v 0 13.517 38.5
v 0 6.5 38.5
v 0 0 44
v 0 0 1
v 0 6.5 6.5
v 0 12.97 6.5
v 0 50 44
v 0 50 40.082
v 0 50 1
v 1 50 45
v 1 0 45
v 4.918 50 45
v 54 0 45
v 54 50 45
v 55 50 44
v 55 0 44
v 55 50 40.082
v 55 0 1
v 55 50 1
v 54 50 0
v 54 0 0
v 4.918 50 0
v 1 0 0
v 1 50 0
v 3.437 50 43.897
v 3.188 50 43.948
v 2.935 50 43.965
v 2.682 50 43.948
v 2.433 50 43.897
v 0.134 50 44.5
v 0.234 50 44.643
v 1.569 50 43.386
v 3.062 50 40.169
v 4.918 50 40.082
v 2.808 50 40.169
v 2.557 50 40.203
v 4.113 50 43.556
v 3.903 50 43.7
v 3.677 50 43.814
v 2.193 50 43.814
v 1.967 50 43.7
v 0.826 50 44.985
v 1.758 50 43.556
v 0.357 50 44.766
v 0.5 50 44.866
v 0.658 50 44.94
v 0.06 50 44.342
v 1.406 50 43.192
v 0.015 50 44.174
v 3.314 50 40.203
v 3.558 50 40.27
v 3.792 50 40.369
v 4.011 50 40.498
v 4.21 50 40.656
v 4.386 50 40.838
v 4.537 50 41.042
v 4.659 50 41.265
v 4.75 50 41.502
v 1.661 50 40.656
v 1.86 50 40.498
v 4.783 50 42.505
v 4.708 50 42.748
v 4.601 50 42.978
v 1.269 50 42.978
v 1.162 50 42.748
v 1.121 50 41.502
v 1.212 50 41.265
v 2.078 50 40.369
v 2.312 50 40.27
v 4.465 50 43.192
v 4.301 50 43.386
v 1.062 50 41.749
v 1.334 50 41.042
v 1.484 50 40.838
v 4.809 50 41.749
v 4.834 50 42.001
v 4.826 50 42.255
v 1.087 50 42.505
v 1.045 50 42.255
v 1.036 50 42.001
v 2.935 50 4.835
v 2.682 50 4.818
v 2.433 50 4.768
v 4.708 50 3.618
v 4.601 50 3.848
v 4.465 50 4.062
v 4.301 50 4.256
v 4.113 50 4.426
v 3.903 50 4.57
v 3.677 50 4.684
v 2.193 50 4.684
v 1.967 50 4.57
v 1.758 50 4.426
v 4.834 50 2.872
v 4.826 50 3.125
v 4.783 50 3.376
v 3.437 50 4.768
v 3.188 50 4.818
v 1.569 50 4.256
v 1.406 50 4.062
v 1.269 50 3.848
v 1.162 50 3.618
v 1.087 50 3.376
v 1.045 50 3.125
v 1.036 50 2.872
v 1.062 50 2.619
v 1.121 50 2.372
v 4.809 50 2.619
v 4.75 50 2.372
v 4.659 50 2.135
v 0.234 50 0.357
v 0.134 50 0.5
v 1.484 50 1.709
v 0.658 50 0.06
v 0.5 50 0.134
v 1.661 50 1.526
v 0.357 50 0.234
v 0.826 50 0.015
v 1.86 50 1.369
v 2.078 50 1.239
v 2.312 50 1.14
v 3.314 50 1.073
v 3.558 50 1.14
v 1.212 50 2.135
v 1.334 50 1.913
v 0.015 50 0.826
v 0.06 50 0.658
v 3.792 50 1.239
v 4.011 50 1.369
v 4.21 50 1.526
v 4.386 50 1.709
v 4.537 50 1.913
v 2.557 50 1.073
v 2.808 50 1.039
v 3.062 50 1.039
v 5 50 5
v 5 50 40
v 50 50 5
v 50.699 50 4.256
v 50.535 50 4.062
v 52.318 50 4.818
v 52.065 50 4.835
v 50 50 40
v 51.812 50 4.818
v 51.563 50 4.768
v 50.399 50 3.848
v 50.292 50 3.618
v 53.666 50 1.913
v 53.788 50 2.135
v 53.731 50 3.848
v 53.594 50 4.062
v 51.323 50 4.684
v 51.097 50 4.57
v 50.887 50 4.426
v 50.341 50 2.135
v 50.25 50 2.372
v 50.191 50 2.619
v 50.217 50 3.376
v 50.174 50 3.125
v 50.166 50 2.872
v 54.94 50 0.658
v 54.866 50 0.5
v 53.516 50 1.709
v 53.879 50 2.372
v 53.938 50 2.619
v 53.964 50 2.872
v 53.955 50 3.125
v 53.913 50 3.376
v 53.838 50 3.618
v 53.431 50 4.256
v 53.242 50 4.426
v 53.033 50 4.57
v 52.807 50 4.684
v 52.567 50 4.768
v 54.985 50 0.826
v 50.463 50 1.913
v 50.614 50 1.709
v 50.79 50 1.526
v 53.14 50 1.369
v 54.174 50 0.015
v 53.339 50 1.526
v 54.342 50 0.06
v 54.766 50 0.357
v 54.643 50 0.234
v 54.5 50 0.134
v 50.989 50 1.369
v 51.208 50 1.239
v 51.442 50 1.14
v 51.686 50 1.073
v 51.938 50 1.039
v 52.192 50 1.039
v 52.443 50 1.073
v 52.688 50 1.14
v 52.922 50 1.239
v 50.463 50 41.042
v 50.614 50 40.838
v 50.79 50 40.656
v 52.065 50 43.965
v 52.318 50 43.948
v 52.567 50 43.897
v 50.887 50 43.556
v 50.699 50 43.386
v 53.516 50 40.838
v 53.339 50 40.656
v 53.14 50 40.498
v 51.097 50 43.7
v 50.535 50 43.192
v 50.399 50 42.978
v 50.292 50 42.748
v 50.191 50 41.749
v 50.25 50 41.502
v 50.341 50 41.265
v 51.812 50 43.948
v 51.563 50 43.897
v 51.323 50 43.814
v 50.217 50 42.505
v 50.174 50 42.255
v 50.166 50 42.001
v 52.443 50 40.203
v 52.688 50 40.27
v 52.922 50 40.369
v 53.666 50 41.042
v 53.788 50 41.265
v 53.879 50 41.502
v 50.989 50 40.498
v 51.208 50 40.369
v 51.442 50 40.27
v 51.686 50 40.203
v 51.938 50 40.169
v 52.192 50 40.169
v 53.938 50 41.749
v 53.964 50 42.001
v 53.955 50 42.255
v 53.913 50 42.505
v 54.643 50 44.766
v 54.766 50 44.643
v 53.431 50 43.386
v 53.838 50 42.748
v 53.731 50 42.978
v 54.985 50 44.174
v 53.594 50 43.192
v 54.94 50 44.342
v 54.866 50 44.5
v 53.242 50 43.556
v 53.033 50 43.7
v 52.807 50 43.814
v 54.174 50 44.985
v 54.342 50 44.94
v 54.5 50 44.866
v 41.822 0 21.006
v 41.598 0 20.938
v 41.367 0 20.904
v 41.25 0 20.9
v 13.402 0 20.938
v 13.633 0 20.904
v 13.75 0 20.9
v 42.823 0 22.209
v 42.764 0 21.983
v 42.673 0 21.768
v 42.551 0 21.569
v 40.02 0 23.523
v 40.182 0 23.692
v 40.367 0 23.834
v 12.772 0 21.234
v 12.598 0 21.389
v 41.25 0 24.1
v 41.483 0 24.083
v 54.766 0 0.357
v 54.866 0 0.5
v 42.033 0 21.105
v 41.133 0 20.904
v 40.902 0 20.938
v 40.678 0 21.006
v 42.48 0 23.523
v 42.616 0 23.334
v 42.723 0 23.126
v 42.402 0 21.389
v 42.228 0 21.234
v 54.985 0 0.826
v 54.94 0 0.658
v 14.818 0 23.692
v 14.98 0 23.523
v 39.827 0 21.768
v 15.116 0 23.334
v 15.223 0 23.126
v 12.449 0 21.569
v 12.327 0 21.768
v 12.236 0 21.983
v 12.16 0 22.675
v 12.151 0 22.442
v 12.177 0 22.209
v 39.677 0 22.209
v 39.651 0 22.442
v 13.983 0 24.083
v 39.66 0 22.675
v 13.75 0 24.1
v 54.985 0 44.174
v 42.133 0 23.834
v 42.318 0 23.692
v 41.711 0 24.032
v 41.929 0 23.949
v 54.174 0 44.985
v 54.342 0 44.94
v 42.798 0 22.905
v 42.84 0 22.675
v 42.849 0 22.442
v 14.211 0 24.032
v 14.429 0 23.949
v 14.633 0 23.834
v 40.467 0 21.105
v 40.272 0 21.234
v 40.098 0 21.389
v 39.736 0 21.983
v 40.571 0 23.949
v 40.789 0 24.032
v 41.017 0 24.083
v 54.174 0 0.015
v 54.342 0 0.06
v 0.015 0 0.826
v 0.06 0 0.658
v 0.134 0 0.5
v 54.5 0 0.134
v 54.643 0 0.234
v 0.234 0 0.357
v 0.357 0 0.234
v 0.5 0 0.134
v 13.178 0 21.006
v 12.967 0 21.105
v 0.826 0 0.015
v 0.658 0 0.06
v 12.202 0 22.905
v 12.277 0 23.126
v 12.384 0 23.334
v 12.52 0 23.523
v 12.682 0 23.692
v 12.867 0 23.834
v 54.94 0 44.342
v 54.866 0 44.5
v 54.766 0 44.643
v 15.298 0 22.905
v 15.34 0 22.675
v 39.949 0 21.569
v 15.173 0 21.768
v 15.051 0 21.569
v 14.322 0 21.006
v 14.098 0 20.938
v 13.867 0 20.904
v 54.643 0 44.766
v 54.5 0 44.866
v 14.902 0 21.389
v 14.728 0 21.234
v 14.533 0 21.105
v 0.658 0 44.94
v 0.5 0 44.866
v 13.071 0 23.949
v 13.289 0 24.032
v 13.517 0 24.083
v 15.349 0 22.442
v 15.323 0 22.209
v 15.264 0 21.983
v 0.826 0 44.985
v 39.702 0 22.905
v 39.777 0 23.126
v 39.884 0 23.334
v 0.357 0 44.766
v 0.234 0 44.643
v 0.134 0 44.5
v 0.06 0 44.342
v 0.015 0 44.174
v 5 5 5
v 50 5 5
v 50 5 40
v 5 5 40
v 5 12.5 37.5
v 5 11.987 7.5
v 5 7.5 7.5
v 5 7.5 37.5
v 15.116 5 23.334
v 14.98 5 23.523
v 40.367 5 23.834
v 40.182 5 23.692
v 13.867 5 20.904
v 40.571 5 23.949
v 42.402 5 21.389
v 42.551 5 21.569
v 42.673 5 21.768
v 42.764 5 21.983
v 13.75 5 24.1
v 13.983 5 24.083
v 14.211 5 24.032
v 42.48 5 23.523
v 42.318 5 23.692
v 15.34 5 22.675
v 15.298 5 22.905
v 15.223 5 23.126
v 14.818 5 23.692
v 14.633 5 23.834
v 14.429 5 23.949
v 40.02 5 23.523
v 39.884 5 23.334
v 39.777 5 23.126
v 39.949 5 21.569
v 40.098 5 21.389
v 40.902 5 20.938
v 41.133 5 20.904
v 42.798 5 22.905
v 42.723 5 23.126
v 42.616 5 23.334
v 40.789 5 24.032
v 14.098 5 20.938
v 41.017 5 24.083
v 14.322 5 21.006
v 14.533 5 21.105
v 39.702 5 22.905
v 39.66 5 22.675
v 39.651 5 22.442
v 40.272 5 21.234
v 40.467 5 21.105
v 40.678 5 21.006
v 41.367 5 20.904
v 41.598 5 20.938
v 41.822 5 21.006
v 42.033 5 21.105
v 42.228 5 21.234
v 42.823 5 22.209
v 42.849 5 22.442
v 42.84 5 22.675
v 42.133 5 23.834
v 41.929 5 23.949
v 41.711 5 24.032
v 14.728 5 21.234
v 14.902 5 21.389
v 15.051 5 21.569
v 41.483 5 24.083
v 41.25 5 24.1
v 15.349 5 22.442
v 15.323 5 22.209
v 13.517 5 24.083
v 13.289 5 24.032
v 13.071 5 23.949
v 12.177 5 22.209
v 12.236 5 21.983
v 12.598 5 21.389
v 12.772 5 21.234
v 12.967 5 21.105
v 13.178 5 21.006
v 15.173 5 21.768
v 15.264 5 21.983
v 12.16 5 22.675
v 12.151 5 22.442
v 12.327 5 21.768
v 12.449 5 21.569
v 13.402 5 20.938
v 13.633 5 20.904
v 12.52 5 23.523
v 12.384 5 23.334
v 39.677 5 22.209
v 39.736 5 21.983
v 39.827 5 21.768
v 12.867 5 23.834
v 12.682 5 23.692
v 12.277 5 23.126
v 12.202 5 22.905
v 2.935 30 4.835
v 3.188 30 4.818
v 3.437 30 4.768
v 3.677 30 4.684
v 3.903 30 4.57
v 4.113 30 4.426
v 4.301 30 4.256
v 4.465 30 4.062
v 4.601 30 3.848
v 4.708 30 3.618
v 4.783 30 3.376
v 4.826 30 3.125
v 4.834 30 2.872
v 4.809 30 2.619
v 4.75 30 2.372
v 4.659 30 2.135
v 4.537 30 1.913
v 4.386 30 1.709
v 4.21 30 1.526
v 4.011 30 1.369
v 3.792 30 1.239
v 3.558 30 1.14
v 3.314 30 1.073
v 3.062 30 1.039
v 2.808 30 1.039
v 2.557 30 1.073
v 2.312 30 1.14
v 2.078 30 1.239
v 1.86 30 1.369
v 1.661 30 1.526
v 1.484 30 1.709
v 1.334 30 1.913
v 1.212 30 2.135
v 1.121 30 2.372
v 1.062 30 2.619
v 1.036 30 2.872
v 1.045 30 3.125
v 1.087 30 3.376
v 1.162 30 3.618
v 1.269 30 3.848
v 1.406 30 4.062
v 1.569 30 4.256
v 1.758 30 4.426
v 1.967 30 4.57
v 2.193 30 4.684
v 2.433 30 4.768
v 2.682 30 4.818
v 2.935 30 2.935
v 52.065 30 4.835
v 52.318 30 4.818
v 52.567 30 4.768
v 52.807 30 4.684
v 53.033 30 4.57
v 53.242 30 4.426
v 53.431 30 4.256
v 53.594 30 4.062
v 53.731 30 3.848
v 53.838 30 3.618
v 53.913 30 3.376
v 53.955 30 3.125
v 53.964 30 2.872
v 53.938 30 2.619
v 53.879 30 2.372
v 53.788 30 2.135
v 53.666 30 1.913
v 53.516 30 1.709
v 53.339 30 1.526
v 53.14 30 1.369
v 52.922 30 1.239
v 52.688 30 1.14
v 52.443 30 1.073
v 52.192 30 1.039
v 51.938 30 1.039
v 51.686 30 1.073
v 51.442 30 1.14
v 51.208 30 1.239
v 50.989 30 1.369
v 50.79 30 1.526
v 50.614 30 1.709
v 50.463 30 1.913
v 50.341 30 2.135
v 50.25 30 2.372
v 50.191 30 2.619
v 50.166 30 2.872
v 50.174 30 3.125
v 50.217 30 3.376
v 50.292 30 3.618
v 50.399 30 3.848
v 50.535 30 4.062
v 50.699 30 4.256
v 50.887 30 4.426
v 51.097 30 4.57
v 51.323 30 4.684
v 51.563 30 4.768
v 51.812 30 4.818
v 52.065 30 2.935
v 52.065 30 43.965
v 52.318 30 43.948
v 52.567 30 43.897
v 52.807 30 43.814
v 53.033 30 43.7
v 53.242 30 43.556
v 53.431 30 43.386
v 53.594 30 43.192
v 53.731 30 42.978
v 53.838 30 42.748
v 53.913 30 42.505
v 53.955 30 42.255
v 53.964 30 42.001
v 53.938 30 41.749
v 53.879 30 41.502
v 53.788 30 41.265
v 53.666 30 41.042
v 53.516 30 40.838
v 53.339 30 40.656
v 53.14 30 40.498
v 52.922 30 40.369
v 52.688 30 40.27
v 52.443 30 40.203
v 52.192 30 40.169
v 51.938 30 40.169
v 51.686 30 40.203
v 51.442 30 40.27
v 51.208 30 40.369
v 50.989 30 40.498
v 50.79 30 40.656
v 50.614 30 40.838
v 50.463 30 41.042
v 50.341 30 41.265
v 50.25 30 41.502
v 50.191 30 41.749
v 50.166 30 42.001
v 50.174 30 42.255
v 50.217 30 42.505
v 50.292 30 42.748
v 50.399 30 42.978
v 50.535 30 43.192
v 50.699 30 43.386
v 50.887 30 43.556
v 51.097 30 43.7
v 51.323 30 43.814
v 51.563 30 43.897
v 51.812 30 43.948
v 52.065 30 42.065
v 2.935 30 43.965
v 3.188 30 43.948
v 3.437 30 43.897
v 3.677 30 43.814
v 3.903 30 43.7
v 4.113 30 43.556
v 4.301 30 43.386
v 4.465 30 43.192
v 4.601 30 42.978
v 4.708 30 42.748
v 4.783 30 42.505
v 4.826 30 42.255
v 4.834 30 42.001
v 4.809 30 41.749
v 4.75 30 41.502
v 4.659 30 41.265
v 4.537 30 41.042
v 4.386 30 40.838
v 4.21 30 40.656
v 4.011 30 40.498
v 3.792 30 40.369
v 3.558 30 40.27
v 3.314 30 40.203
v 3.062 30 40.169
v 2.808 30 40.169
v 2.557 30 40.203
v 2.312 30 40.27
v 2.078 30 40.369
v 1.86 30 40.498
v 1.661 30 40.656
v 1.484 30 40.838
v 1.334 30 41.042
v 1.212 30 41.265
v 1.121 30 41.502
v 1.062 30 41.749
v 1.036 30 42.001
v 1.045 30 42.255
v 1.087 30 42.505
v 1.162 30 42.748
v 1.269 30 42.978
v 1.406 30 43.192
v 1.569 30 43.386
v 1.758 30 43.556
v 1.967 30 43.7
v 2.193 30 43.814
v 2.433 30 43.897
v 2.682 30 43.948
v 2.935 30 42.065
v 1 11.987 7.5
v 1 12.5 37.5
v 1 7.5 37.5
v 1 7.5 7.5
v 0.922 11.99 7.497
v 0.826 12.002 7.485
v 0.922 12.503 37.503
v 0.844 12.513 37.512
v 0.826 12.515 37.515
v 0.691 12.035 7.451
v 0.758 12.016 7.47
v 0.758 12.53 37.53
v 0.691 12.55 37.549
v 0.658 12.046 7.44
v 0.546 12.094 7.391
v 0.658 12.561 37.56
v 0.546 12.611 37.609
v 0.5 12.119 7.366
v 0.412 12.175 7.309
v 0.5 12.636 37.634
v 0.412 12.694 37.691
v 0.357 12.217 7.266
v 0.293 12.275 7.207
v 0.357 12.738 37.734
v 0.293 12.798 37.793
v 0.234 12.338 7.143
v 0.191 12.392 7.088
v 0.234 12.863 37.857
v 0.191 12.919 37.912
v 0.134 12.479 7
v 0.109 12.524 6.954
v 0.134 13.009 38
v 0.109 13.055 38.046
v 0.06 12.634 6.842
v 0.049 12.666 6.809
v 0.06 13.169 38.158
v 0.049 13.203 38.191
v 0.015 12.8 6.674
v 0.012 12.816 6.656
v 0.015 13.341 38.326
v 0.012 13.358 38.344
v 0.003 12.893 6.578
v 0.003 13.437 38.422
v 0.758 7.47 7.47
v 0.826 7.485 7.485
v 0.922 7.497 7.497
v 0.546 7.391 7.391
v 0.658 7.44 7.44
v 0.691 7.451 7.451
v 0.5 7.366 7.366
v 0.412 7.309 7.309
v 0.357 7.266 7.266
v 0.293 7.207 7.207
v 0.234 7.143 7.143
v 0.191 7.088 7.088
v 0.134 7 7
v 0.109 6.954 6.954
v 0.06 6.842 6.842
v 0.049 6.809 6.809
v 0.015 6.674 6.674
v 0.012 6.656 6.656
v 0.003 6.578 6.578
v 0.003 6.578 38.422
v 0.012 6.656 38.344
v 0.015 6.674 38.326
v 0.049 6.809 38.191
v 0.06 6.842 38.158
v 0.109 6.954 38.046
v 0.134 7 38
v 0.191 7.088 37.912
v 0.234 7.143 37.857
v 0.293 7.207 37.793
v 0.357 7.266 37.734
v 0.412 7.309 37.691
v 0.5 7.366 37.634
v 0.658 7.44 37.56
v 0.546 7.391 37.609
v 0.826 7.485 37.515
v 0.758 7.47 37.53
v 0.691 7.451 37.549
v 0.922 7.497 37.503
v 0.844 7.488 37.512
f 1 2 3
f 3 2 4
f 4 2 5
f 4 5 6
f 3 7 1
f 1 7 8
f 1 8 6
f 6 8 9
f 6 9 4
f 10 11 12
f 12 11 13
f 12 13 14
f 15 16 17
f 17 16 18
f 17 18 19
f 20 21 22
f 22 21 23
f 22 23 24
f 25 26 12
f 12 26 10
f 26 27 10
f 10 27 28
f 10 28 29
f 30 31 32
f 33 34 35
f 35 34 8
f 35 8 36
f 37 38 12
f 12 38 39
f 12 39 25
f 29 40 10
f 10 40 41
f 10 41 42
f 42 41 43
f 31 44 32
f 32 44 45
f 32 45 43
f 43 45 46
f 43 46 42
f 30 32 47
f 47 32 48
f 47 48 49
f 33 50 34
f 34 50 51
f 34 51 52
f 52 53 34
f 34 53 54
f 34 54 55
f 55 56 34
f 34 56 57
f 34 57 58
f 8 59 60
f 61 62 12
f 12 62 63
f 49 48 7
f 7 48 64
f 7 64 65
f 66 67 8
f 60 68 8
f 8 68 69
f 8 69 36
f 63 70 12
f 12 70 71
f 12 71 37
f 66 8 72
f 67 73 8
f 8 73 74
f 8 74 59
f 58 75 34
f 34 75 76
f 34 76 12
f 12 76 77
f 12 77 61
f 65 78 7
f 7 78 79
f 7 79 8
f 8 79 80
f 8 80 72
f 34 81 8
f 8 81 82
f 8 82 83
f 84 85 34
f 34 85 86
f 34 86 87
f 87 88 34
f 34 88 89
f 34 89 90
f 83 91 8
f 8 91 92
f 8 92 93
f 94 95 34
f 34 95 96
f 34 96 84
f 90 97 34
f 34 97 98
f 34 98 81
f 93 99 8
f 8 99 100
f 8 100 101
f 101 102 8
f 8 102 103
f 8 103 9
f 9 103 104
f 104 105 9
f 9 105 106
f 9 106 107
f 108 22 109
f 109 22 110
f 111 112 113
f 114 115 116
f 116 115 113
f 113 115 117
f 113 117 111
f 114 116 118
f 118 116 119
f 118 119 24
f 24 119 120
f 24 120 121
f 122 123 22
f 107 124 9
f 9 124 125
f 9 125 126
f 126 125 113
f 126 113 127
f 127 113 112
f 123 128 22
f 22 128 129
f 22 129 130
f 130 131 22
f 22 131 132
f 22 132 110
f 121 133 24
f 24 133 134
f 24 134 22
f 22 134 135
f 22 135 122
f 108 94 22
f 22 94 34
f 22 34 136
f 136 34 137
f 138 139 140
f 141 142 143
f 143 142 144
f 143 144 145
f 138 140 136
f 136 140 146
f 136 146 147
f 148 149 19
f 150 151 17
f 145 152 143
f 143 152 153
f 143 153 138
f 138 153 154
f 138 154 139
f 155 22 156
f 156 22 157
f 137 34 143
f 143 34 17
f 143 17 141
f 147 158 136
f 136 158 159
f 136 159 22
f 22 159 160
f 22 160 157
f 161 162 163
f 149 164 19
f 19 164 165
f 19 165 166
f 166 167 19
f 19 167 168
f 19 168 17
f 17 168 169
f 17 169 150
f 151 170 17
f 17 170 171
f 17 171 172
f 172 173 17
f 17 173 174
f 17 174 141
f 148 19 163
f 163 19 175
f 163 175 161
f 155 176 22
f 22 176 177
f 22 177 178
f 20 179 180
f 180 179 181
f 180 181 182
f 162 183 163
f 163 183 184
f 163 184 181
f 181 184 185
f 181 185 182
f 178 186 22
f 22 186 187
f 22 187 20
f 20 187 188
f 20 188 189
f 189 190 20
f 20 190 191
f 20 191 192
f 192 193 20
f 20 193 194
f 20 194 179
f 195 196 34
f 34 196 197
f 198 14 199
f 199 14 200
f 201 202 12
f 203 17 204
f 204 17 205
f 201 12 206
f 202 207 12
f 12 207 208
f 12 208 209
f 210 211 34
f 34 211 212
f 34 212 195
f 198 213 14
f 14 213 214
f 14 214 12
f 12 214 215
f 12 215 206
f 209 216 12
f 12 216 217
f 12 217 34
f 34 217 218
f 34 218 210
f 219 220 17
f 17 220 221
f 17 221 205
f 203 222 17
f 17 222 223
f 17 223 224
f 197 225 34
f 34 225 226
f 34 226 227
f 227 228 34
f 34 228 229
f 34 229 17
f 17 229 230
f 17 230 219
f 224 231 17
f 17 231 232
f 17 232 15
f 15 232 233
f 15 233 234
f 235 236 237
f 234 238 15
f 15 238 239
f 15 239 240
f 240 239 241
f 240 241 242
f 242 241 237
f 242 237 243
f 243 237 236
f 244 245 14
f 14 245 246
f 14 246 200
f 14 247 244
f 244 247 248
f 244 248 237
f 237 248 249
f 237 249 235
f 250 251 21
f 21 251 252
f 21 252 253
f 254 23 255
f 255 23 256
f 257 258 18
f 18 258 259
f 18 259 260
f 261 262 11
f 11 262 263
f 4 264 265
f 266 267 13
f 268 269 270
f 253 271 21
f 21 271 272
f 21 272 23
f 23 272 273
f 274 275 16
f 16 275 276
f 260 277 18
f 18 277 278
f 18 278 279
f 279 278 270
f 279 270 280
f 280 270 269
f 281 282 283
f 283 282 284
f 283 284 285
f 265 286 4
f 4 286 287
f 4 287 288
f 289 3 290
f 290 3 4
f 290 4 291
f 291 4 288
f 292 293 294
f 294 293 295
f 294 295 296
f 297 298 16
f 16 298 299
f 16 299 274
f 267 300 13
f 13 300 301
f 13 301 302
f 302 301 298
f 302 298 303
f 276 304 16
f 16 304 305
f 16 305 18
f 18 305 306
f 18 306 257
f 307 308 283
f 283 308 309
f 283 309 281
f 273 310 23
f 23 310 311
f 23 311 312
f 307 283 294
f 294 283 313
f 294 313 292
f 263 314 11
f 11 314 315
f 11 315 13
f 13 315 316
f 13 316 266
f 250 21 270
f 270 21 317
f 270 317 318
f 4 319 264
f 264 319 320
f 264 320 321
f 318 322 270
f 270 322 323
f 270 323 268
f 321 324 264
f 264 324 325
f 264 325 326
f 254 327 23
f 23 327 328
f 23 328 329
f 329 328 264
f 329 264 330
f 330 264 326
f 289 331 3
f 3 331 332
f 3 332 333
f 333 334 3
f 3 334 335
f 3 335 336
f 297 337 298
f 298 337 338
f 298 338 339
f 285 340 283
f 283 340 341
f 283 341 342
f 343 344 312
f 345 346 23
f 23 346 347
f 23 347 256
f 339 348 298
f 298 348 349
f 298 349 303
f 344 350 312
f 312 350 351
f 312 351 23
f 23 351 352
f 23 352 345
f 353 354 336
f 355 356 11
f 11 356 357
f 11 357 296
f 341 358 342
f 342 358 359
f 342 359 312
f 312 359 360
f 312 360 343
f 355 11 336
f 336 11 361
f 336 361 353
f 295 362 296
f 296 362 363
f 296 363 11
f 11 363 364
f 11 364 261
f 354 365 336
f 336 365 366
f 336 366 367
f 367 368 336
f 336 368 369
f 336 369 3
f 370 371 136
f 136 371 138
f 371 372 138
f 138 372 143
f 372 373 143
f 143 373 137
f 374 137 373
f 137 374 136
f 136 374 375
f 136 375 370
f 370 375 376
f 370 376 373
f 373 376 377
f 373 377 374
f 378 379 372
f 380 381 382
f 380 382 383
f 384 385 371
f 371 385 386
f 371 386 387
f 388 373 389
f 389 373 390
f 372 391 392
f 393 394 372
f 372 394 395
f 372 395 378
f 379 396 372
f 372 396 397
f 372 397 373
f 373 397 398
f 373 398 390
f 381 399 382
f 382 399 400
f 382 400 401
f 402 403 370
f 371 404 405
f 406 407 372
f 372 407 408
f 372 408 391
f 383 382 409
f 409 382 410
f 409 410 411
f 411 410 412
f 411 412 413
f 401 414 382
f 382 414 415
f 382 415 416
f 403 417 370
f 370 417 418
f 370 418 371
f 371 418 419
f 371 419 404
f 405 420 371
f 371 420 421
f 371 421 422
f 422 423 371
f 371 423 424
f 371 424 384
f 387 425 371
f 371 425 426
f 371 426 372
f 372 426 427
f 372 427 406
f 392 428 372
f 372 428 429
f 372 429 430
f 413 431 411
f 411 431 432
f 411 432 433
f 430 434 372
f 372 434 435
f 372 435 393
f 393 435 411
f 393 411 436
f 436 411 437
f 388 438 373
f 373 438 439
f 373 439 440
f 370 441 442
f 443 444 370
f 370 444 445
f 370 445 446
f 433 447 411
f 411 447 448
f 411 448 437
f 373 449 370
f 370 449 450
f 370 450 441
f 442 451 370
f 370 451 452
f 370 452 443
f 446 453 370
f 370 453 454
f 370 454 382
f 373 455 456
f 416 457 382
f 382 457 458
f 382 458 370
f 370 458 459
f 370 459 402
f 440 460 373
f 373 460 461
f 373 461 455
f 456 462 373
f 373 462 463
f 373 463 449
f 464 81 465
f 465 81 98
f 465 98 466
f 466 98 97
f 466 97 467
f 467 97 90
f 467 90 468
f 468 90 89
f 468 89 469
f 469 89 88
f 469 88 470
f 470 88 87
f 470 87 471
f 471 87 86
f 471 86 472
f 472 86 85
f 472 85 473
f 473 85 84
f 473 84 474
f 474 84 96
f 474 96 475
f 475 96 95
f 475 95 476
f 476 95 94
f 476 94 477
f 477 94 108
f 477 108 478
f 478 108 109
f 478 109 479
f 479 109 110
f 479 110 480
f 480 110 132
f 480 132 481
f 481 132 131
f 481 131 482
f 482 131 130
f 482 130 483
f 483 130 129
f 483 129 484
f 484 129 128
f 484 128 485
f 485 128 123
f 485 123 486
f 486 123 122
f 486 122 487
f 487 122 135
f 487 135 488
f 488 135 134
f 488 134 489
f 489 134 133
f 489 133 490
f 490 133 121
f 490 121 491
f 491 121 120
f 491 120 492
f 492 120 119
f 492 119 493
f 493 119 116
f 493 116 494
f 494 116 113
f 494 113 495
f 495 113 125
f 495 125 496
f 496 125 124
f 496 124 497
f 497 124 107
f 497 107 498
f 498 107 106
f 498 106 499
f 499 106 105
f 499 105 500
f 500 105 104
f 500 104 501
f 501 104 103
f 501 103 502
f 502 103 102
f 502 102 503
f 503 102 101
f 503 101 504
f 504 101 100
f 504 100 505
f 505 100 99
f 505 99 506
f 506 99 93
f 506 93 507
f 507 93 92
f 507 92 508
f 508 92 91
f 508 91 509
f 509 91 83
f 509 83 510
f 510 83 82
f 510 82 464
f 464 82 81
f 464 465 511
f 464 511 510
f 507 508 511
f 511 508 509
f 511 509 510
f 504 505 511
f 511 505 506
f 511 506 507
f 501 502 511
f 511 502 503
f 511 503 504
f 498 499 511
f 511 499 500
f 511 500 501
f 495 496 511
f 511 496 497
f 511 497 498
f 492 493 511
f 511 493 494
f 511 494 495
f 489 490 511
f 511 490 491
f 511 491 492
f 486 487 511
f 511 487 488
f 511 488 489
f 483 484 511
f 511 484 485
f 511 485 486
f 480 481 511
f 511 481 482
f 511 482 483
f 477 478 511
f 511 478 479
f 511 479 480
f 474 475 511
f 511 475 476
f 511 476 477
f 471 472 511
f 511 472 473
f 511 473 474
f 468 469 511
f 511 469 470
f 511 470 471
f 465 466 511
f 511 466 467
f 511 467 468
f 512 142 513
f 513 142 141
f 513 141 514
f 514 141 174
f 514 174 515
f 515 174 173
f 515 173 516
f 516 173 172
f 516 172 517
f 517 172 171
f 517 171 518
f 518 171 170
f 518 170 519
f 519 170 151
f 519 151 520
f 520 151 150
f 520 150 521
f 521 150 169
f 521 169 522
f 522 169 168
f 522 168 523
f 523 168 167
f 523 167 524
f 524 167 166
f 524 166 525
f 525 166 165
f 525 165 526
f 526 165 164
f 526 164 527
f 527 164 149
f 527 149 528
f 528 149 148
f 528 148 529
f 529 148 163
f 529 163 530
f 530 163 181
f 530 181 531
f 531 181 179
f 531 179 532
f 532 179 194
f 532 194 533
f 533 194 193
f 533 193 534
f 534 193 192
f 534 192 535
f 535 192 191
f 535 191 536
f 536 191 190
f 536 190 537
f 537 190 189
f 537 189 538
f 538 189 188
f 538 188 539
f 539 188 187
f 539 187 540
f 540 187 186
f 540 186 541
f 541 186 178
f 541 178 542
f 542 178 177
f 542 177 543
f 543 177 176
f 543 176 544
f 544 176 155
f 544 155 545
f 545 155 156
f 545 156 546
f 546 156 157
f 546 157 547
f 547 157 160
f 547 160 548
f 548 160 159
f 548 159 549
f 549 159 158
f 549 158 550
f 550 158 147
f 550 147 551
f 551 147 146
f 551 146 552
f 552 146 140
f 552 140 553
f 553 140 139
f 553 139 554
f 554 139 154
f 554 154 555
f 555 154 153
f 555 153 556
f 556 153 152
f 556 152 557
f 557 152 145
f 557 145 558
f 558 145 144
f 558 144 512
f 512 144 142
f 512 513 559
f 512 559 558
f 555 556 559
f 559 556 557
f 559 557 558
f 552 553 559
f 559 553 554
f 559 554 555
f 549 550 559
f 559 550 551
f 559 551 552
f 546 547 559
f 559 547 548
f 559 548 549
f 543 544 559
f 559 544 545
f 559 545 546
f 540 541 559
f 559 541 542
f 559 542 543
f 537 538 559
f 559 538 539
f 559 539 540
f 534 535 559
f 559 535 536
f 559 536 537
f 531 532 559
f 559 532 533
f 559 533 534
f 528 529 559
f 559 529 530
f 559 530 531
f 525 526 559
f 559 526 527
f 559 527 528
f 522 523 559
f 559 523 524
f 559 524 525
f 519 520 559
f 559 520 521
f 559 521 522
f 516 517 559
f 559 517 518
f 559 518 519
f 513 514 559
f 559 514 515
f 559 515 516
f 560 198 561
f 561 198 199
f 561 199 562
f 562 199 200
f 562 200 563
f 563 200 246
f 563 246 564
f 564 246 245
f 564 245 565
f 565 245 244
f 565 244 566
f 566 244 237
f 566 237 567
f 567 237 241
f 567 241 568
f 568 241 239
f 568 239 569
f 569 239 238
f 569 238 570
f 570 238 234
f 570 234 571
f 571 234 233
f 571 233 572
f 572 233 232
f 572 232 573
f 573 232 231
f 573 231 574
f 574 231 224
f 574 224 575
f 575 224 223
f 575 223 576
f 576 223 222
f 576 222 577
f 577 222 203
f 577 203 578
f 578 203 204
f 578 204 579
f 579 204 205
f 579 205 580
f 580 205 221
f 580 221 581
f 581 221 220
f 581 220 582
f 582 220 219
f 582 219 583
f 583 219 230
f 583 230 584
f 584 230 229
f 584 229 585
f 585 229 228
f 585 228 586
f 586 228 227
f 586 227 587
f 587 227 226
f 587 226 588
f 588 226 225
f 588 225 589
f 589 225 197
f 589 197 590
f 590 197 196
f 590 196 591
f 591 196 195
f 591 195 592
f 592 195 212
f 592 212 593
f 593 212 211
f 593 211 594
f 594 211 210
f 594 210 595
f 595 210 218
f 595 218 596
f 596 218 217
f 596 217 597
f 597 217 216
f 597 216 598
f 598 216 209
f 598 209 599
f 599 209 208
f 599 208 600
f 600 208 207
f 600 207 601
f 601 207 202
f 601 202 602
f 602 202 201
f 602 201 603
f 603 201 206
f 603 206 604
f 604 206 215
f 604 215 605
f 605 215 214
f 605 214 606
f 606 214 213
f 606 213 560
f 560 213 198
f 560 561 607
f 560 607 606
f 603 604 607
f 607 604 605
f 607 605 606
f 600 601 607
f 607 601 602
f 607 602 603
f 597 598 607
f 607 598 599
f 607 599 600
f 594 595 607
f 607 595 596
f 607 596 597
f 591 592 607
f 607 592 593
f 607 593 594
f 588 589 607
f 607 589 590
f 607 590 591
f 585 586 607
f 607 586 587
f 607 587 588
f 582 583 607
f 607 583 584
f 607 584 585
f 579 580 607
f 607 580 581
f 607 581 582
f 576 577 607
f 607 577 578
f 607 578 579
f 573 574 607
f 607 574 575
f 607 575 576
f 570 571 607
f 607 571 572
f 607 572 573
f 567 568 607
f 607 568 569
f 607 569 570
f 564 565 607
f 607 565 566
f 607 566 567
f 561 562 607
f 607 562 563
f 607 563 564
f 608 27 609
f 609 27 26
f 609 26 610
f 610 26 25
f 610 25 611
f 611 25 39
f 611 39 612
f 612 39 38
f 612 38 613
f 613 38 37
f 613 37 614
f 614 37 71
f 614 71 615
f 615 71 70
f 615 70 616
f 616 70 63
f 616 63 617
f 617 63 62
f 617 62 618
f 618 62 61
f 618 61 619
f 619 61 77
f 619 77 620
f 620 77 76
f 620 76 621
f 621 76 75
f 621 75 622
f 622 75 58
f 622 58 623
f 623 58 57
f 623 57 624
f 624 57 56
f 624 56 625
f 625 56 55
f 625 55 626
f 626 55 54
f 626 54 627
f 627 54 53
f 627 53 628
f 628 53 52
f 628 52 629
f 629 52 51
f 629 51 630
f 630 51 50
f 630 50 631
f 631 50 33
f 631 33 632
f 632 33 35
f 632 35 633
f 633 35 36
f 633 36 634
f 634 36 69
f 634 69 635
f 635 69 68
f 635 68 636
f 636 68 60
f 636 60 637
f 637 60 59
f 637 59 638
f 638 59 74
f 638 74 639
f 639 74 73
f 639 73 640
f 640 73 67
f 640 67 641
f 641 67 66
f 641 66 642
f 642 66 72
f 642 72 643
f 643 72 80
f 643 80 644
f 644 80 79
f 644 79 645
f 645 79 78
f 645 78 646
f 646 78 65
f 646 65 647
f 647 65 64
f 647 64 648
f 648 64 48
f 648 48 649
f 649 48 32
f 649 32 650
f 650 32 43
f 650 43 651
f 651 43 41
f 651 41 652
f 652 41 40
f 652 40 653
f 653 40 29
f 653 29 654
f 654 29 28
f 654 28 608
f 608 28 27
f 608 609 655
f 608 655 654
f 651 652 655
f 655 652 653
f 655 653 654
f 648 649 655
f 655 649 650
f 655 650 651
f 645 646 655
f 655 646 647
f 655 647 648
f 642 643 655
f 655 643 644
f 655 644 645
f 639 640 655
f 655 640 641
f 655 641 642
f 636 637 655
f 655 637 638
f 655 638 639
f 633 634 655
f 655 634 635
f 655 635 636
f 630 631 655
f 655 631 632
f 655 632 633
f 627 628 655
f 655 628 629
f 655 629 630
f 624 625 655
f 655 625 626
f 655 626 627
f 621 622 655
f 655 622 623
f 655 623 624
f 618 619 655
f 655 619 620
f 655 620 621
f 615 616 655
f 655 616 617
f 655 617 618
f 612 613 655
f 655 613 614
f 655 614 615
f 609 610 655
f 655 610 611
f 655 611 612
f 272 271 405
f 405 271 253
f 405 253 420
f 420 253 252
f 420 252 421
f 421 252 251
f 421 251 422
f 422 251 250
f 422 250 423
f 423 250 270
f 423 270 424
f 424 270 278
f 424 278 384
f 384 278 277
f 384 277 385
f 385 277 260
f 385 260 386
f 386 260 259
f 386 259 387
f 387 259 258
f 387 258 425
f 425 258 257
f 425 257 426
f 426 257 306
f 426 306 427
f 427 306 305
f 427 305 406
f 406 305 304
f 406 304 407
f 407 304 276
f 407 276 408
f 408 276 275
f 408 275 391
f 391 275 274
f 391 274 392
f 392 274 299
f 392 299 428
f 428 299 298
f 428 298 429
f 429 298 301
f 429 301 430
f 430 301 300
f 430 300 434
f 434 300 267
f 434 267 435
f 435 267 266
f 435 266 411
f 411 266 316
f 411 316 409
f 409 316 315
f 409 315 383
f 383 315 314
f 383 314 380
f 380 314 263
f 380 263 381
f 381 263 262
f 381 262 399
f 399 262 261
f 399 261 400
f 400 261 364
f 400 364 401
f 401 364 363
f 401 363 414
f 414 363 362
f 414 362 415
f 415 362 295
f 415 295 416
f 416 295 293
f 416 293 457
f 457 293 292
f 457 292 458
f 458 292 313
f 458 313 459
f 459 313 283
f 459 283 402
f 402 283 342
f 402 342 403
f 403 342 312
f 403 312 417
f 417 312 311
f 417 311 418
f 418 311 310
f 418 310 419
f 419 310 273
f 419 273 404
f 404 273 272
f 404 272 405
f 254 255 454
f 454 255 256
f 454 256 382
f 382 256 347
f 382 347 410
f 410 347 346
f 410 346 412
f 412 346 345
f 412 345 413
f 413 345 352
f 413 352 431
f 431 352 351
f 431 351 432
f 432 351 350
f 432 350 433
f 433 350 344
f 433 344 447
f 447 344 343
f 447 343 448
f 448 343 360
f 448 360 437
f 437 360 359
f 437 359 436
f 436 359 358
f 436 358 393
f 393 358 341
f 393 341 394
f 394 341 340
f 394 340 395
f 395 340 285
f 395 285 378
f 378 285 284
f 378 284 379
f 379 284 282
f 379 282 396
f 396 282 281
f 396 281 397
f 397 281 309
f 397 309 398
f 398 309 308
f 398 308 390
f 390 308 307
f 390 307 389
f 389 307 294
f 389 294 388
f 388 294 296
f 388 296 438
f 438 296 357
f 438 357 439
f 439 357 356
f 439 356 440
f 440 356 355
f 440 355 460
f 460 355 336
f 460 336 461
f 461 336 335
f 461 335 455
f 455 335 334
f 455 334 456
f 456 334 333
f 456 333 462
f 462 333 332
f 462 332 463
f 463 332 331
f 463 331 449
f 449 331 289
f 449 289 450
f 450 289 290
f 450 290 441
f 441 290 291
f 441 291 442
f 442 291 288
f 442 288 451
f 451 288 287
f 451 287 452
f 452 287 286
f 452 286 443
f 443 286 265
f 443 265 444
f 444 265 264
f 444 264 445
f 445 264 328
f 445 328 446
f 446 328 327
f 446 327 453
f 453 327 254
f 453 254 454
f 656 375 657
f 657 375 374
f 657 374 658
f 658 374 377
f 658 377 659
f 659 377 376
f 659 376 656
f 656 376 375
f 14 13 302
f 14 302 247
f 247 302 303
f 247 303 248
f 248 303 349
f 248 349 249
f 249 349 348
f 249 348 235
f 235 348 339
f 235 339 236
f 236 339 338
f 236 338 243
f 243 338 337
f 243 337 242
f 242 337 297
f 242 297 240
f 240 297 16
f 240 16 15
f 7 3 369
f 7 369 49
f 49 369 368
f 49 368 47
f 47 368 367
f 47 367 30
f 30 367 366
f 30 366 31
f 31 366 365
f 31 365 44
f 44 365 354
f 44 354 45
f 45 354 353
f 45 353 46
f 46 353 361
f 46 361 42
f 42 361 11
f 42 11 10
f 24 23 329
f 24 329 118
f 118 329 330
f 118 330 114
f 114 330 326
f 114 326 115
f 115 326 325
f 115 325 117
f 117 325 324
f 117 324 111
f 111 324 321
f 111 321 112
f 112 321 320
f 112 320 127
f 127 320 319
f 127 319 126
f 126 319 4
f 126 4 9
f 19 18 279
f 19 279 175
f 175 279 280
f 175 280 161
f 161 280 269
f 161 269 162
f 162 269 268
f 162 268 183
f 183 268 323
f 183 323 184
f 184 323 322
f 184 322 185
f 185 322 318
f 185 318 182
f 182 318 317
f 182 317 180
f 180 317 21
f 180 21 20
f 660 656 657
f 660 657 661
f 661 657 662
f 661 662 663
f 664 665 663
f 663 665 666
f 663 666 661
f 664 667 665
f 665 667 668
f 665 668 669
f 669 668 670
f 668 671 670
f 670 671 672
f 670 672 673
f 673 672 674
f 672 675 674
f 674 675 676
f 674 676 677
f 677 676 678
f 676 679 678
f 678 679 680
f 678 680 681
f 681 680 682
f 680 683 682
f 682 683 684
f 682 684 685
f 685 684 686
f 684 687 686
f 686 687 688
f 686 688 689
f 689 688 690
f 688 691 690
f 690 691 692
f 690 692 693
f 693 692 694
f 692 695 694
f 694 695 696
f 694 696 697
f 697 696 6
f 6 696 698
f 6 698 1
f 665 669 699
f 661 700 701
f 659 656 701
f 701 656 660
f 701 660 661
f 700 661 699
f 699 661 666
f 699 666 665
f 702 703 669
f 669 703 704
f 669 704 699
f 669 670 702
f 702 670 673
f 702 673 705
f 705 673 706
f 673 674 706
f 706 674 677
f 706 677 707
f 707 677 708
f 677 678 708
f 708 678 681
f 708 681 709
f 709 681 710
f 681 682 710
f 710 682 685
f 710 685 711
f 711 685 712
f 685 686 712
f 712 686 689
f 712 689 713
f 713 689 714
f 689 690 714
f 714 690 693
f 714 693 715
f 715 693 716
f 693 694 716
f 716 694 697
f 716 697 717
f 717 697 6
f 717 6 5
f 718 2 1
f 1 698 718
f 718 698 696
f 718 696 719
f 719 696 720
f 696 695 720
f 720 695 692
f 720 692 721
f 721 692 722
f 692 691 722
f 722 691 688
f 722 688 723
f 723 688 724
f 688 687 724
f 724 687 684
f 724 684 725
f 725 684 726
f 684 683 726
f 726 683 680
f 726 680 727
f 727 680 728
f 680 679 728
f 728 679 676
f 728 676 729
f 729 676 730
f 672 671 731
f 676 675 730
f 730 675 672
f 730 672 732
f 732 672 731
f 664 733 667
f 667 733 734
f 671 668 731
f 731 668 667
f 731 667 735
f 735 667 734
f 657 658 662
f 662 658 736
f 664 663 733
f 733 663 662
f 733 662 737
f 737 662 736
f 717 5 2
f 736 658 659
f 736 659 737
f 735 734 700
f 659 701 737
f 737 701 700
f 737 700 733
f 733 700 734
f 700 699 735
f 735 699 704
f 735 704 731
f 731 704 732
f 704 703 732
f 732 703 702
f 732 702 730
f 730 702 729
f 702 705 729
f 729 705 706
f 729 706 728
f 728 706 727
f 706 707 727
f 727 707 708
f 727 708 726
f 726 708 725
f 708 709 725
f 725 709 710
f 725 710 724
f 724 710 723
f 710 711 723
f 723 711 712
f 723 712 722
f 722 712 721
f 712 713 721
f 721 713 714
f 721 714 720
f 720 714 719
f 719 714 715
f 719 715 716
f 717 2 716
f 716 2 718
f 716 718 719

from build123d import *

# Parameters (mm, degrees)
SKETCH1_W           = 55
SKETCH1_H           = 45
BOSS_EXTRUDE1_DEPTH = 50
SKETCH2_W           = 45
SKETCH2_H           = 35
CUT_EXTRUDE1_DEPTH  = 45
SKETCH3_R           = 1.9
CUT_EXTRUDE2_DEPTH  = 20
SKETCH4_R           = 1.6
CUT_EXTRUDE3_DEPTH  = 10
CUT_EXTRUDE4_DEPTH  = 10
FILLET2_R           = 1
FILLET3_R           = 1


with BuildPart() as part:
    # Sketch1 → Boss-Extrude1 (new body)
    with BuildSketch(Plane(origin=(0, 0, 0), x_dir=(1, 0, 0), z_dir=(0, 1, 0))):
        with Locations((27.5, -22.5)):
            Rectangle(SKETCH1_W, SKETCH1_H)
    extrude(amount=BOSS_EXTRUDE1_DEPTH)

    # Sketch2 → Cut-Extrude1 (cut)
    with BuildSketch(Plane(origin=(0, 50, 0), x_dir=(1, 0, 0), z_dir=(0, 1, 0))):
        with Locations((27.5, -22.5)):
            Rectangle(SKETCH2_W, SKETCH2_H)
    extrude(amount=-CUT_EXTRUDE1_DEPTH, mode=Mode.SUBTRACT)

    # Sketch3 → Cut-Extrude2 (cut)
    with BuildSketch(Plane(origin=(0, 50, 0), x_dir=(1, 0, 0), z_dir=(0, 1, 0))):
        with Locations((2.935211994, -2.935211994)):
            Circle(SKETCH3_R)
        with Locations((52.064788006, -2.935211994)):
            Circle(SKETCH3_R)
        with Locations((52.064788006, -42.064788006)):
            Circle(SKETCH3_R)
        with Locations((2.935211994, -42.064788006)):
            Circle(SKETCH3_R)
    extrude(amount=-CUT_EXTRUDE2_DEPTH, mode=Mode.SUBTRACT)

    # Sketch4 → Cut-Extrude3 (cut)
    with BuildSketch(Plane(origin=(0, 5, 0), x_dir=(1, 0, 0), z_dir=(0, 1, 0))):
        with Locations((13.75, -22.5)):
            Circle(SKETCH4_R)
        with Locations((41.25, -22.5)):
            Circle(SKETCH4_R)
    extrude(amount=-CUT_EXTRUDE3_DEPTH, mode=Mode.SUBTRACT)

    # Sketch5 → Cut-Extrude4 (cut)
    with BuildSketch(Plane.ZY):
        Polygon((7.5, 11.987174728), (7.5, 7.5), (37.5, 7.5), (37.5, 12.5), align=None)
    extrude(amount=-CUT_EXTRUDE4_DEPTH, mode=Mode.SUBTRACT)

    # Fillet2
    fillet2_edges = [part.edges().sort_by_distance(p)[0] for p in [
        (55, 25, 45),
        (0, 25, 45),
        (0, 25, 0),
        (55, 25, 0),
    ]]
    fillet(fillet2_edges, radius=FILLET2_R)

    # Fillet3
    fillet3_edges = [part.edges().sort_by_distance(p)[0] for p in [
        (0, 7.5, 22.5),
        (0, 9.743587364, 7.5),
        (0, 12.243587364, 22.5),
        (0, 10, 37.5),
    ]]
    fillet(fillet3_edges, radius=FILLET3_R)


solid = part.part
